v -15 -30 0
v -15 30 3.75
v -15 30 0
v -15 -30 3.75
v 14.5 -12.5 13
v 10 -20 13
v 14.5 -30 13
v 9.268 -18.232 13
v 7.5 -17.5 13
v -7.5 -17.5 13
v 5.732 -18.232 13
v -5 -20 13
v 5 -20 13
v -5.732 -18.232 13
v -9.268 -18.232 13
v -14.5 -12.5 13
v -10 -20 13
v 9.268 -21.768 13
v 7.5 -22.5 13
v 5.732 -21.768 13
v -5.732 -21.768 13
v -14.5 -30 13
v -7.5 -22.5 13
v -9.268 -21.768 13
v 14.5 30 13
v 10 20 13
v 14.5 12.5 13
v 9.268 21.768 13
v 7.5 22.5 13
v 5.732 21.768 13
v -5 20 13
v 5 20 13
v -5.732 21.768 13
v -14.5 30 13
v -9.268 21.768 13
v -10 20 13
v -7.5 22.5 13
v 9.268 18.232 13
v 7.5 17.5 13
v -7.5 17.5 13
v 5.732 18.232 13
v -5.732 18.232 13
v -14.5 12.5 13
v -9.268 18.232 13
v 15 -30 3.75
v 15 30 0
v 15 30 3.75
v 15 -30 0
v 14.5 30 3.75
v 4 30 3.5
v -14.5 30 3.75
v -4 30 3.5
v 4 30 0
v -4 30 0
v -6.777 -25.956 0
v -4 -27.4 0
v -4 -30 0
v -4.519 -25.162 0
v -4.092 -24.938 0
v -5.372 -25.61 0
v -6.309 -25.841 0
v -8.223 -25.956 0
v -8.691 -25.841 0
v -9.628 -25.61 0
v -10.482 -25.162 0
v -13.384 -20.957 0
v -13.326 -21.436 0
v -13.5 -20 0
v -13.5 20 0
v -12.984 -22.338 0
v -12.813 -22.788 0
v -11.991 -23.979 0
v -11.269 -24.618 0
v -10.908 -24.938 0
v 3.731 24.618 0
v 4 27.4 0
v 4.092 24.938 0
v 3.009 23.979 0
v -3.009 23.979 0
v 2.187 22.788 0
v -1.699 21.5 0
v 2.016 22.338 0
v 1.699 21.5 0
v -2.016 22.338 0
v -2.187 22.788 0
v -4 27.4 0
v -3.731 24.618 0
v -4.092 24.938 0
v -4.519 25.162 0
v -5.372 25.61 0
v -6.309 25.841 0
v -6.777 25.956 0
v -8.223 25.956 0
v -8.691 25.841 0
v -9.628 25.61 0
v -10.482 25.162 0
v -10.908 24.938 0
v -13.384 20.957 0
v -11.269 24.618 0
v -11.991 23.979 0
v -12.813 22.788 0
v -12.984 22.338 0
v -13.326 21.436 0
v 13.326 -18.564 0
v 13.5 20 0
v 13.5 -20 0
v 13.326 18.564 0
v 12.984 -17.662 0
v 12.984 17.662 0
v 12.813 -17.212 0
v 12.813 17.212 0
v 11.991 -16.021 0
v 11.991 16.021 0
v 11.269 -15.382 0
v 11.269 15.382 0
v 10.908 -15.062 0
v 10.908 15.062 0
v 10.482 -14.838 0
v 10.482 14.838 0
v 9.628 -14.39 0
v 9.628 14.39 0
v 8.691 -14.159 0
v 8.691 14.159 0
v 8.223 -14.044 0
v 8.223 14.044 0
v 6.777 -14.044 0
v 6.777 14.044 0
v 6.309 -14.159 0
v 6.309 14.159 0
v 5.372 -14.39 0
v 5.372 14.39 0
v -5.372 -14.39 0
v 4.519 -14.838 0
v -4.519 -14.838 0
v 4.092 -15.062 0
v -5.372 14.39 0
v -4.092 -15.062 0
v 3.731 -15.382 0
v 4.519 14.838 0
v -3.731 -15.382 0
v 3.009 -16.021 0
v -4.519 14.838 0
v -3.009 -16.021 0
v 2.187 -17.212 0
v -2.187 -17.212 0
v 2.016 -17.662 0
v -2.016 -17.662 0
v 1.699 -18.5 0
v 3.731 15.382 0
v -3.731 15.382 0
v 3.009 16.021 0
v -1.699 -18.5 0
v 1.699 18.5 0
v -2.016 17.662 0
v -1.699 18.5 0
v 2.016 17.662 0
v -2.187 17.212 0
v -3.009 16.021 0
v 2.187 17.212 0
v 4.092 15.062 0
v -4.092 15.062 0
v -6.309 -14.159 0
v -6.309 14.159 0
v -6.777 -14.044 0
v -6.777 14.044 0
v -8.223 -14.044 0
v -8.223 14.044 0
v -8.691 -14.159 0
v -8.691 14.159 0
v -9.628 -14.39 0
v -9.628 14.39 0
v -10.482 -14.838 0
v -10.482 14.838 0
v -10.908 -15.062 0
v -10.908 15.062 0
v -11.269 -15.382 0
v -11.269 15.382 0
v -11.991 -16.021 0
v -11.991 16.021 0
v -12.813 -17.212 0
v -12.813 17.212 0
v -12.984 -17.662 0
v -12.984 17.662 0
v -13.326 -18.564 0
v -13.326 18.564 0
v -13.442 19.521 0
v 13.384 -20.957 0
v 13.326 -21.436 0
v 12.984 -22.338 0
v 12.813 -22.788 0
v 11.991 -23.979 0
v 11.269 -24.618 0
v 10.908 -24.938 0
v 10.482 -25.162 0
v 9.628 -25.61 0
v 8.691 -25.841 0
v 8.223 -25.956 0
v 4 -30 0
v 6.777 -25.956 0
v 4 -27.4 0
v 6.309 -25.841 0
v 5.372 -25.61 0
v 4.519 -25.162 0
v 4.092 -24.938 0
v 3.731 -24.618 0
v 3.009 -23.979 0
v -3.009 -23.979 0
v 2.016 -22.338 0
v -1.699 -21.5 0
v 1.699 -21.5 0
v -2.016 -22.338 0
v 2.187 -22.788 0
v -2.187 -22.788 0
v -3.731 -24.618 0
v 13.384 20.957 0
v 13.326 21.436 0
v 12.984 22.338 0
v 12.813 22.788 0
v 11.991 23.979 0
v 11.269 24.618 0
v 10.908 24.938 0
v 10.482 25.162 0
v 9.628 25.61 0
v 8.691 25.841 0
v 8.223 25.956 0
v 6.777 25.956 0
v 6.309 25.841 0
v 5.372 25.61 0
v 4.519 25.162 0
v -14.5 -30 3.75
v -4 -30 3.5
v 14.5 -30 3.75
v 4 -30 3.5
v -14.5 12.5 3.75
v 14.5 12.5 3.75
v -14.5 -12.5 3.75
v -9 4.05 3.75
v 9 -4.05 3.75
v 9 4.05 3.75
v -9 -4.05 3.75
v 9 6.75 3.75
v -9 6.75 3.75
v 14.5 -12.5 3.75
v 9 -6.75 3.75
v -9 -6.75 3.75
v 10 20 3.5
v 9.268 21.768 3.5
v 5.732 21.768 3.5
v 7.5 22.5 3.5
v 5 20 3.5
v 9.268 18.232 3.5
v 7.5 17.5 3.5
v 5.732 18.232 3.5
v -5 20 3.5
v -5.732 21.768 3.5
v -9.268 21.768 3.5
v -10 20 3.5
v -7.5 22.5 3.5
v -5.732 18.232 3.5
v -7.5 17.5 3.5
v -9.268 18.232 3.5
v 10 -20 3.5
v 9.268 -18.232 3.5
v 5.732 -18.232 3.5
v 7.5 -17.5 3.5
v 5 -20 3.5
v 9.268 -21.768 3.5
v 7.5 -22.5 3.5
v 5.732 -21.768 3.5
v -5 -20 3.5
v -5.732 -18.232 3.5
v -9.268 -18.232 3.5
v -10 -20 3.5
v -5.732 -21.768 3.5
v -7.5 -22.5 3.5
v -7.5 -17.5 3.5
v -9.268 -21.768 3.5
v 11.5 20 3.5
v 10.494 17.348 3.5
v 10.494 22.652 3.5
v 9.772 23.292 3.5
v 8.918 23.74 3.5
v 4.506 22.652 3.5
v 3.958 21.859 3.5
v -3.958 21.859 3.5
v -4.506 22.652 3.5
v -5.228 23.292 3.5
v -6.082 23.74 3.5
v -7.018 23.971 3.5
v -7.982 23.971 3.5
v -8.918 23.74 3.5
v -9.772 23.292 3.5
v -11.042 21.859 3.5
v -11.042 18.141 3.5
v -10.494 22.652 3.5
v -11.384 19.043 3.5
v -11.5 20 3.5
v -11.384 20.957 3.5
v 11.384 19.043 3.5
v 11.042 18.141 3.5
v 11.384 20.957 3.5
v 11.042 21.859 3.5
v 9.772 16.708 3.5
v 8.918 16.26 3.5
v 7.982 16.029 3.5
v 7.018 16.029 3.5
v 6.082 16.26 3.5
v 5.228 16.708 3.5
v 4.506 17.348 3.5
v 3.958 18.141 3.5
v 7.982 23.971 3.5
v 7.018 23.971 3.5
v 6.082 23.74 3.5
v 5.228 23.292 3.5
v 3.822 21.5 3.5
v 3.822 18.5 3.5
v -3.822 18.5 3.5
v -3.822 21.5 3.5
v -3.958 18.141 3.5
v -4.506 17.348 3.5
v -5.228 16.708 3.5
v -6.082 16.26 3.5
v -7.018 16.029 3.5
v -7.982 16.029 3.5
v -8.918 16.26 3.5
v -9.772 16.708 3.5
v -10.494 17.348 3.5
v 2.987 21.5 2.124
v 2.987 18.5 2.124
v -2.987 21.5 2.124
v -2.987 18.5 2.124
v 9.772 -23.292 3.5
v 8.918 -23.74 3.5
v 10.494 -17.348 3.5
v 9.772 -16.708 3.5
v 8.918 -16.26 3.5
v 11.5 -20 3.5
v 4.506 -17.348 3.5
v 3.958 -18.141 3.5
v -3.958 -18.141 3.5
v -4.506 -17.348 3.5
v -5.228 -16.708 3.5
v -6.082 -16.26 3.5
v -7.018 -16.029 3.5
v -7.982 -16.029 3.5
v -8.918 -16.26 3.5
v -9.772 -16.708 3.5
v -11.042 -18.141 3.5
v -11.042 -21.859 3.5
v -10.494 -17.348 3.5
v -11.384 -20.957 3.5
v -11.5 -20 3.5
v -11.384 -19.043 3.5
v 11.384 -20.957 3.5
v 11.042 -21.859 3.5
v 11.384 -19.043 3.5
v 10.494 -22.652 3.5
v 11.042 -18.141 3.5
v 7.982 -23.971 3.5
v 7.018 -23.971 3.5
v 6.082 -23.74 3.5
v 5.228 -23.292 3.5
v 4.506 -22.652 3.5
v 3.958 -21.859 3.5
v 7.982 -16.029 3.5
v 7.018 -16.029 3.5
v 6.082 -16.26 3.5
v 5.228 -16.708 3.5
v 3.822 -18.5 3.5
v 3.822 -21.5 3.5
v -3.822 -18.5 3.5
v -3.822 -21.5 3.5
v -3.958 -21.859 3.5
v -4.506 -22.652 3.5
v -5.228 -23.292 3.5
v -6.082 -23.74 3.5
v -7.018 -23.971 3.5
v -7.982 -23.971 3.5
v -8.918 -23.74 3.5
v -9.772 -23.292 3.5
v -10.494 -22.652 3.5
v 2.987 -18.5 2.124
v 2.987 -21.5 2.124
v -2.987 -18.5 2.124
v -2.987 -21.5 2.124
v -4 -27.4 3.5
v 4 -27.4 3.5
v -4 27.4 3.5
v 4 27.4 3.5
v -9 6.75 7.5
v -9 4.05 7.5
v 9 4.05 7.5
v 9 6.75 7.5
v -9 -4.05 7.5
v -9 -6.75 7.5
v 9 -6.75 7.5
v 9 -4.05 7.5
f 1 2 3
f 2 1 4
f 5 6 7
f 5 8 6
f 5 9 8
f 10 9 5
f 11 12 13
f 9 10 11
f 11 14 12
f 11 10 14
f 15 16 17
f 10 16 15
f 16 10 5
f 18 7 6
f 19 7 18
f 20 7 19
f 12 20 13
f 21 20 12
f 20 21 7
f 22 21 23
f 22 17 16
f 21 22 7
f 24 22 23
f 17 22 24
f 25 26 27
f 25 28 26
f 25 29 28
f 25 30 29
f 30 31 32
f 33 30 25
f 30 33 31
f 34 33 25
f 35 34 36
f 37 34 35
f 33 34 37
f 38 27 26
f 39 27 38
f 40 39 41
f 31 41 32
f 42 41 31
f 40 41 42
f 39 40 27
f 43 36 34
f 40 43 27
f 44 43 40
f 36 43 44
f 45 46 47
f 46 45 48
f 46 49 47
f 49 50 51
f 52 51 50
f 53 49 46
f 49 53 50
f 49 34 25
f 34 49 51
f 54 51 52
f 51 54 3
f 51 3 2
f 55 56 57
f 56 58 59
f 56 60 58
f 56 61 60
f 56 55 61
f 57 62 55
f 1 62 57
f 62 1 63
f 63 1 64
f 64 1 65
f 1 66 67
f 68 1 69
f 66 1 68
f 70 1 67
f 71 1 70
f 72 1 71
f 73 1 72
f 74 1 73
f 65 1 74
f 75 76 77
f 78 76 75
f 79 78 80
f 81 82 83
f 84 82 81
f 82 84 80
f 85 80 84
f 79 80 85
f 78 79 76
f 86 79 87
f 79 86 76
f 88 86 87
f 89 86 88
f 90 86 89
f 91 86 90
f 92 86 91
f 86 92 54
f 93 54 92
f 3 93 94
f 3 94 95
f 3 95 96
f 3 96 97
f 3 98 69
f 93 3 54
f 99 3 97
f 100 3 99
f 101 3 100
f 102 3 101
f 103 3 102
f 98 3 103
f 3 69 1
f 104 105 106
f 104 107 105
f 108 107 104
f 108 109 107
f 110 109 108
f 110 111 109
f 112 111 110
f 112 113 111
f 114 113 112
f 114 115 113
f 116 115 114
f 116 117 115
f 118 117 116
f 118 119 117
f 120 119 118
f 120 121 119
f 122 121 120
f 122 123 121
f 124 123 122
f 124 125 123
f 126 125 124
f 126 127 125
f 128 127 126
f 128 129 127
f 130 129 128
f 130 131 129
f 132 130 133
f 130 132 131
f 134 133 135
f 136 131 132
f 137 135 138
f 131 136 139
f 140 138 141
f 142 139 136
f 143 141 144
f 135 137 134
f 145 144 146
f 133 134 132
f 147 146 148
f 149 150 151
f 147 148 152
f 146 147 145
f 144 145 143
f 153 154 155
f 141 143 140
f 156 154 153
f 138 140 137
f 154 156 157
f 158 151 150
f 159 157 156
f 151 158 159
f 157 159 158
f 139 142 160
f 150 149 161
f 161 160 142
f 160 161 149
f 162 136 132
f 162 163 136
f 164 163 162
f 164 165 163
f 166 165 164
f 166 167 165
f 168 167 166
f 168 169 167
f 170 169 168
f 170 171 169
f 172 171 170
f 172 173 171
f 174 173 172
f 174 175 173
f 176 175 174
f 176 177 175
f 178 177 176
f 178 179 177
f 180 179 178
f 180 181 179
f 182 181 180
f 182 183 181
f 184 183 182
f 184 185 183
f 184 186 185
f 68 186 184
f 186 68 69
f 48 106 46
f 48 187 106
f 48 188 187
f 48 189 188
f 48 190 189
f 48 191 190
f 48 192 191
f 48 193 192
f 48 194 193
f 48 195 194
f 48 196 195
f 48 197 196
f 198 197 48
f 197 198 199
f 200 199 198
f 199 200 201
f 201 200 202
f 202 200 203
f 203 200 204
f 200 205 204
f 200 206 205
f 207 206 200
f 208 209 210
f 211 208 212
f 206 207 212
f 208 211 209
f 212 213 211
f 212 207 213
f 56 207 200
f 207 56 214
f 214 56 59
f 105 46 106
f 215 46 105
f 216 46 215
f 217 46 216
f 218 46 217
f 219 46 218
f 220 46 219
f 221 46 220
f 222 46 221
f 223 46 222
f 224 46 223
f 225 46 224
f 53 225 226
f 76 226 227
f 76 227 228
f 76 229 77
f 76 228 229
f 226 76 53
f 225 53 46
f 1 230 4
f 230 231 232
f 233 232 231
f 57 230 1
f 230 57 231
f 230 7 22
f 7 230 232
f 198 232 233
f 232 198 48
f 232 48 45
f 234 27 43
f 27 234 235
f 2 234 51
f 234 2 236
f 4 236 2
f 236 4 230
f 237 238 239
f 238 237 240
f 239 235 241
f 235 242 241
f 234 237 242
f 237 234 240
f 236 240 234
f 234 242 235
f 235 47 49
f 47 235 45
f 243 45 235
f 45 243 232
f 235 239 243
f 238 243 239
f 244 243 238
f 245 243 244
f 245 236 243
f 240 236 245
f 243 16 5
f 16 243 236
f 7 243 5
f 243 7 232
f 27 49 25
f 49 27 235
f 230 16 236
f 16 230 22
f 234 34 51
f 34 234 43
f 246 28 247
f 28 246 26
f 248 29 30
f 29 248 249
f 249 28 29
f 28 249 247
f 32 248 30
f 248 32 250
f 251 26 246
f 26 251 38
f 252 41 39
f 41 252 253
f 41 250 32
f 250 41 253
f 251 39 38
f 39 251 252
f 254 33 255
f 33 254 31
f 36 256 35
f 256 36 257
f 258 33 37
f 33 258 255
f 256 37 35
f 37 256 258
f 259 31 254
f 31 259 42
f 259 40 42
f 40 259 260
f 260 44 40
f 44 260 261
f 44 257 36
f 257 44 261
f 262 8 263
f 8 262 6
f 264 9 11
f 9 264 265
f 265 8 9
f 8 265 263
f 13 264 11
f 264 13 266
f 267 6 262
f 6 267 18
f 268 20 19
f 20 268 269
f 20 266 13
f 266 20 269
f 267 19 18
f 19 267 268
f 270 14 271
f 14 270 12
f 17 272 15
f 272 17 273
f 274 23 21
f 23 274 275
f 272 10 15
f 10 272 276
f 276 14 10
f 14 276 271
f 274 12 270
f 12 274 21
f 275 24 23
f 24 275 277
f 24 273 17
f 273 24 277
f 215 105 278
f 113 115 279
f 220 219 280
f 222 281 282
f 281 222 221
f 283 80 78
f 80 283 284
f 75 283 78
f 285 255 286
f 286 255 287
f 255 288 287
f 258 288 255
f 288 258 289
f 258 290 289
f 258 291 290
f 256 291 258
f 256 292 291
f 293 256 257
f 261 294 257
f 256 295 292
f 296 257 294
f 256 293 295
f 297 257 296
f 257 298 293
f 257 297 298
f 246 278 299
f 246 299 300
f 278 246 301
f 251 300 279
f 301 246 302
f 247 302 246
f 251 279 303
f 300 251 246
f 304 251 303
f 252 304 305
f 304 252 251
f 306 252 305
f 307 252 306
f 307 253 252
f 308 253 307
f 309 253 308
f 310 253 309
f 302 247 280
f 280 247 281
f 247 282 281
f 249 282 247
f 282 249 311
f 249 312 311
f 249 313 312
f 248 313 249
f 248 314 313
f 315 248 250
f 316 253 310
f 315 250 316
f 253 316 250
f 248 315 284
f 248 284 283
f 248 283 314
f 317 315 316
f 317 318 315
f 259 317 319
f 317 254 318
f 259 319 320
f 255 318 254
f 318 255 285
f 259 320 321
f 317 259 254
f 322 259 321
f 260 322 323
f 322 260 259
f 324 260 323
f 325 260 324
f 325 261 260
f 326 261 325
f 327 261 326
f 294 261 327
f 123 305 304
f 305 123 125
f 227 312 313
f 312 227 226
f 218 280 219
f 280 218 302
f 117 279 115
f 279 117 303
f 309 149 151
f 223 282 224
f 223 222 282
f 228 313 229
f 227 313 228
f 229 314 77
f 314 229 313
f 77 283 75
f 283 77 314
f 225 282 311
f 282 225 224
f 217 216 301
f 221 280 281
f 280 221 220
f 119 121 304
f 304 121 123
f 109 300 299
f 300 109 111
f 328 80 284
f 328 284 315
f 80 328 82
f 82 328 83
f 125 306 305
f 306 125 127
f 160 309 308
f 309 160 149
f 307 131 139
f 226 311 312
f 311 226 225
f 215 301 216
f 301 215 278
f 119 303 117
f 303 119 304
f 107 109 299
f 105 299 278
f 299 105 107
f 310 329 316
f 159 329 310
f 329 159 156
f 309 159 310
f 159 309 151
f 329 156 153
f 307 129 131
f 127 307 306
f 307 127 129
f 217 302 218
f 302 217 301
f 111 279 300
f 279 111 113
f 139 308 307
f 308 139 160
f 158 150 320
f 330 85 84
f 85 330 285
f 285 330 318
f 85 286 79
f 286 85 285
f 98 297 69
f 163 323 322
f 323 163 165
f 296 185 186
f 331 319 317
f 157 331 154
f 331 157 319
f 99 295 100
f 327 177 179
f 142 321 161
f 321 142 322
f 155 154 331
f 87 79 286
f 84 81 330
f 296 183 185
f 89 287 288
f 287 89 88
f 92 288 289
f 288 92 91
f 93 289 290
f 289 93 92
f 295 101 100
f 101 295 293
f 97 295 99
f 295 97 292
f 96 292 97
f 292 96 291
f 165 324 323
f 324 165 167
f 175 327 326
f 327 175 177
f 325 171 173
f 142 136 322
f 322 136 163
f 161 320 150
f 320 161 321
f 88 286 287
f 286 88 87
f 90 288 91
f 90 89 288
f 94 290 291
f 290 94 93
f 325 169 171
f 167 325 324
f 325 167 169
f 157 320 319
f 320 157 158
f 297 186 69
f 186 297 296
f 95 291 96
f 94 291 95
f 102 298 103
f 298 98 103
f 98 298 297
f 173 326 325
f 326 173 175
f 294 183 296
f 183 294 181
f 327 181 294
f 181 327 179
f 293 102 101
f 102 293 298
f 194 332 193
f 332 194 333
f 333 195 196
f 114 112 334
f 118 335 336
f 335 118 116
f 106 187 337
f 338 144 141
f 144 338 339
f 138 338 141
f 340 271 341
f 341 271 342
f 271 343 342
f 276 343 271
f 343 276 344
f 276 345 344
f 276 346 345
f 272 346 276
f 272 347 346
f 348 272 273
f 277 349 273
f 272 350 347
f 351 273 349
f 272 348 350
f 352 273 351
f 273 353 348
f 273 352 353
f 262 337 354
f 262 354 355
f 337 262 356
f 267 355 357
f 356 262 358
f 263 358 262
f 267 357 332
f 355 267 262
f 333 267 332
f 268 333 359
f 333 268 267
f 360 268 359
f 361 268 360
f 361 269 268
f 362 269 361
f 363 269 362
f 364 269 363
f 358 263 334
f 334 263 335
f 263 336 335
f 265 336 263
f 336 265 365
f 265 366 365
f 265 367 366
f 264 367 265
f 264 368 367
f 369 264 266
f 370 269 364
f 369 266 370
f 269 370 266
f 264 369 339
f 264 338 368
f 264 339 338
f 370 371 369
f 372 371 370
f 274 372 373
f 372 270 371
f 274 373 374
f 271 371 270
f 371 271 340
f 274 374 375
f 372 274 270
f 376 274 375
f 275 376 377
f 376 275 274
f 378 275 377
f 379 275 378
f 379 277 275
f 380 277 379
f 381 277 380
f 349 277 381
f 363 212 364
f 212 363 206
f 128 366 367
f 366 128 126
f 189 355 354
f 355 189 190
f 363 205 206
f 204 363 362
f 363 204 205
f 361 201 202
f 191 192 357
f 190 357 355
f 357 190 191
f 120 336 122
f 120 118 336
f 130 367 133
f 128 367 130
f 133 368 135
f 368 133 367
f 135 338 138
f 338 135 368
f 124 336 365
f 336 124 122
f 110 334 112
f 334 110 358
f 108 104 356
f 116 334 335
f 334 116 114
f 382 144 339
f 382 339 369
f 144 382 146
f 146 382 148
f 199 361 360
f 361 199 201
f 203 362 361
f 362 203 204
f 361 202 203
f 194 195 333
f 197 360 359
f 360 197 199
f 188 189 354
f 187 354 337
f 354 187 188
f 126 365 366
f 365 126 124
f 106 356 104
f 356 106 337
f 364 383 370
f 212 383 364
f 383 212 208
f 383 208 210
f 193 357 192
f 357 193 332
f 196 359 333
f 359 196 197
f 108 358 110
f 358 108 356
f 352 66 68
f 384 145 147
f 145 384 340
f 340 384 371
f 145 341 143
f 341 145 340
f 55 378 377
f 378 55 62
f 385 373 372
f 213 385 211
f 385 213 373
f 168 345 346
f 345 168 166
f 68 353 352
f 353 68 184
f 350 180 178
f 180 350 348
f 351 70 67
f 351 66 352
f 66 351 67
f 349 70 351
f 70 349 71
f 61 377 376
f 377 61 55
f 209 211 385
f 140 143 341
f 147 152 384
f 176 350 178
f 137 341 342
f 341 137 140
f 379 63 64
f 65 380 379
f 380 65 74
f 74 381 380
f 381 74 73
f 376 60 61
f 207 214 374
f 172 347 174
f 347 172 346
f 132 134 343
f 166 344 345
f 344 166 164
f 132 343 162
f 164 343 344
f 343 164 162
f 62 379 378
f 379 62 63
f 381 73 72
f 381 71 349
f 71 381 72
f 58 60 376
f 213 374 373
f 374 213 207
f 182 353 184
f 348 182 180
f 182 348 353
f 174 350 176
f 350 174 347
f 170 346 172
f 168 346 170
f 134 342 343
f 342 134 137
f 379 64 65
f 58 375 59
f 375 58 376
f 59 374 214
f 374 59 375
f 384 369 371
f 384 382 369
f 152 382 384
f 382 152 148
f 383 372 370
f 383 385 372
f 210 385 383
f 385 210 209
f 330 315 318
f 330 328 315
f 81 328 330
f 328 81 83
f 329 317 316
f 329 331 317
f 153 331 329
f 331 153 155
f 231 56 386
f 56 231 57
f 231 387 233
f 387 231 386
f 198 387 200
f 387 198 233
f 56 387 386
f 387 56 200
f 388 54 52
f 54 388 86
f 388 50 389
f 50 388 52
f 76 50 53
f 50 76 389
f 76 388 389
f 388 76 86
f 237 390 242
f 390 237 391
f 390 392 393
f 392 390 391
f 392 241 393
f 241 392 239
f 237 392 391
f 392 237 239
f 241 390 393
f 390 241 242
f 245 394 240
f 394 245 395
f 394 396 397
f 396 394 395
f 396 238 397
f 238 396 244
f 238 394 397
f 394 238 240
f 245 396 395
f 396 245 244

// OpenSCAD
//block shape
x=30;
y=60;
z=13;

// track channel
f=x+10;
g=25;
h=9.5;
// block top
e=20;
r=y+10;
t=16.5;

// spacing of screw holes
cx=15;
cy=40;
dx=15;
dy=45;


difference()
{
    translate([0,0,z]/2) cube ([x,y,z],center=true);
    translate([0,0,z+4]/2) cube([f,g,h],center=true);
    translate([49,0,z+11]/2) cube ([e,r,t],center=true);
        translate([-49,0,z+11]/2) cube ([e,r,t],center=true);

  translate([cx,cy,0]/2) cylinder(d=5, h=50,  center=true);
  translate([-cx,cy,0]/2) cylinder(d=5, h=50,  center=true);
    translate([cx,-cy,0]/2) cylinder(d=5, h=50,  center=true);
    translate([-cx,-cy,0]/2) cylinder(d=5, h=50,  center=true);
  translate([dy,dy,0]/2) cylinder(d=5, h=50,  center=true);
  translate([-dy,dy,0]/2) cylinder(d=5, h=50,  center=true);
    translate([dy,-dy,0]/2) cylinder(d=5, h=50,  center=true);
    translate([-dy,-dy,0]/2) cylinder(d=5, h=50,  center=true);  
    translate([dy,dx,0]/2) cylinder(d=5, h=50,  center=true);
  translate([-dy,dx,0]/2) cylinder(d=5, h=50,  center=true);  
  translate([dy,-dx,0]/2) cylinder(d=5, h=50,  center=true);
  translate([-dy,-dx,0]/2) cylinder(d=5, h=50,  center=true);  
    
 translate([cx,cy,0]/2)  cylinder(d1=16, d2=8, h=7,  center=true);
 translate([-cx,cy,0]/2) cylinder(d1=16, d2=8, h=7, center=true);
    translate([cx,-cy,0]/2) cylinder(d1=16, d2=8, h=7,  center=true);
    translate([-cx,-cy,0]/2) cylinder(d1=16, d2=8, h=7,  center=true);    
// zip tie knotches    
    translate([0,-cy/2,11.5-10]) cube([18,3,4],center=true);
    translate([0,cy/2,11.5-10]) cube([18,3,4],center=true);
// removal knotches
       translate([0,-(6.8+51)/2,11.5-10]) cube([8,3,4],center=true);
   translate([0,(6.8+51)/2,11.5-10]) cube([8,3,4],center=true);
   translate([(6.8+51)/2,0,11.5-11]) cube([3,8,2],center=true);
   translate([-(6.8+51)/2,0,11.5-11]) cube([3,8,2],center=true);
}

translate([0,(6.8+4)/2,z-8]) cube([18,2.7,5],center=true);
translate([0,-(6.8+4)/2,z-8]) cube([18,2.7,5],center=true);
